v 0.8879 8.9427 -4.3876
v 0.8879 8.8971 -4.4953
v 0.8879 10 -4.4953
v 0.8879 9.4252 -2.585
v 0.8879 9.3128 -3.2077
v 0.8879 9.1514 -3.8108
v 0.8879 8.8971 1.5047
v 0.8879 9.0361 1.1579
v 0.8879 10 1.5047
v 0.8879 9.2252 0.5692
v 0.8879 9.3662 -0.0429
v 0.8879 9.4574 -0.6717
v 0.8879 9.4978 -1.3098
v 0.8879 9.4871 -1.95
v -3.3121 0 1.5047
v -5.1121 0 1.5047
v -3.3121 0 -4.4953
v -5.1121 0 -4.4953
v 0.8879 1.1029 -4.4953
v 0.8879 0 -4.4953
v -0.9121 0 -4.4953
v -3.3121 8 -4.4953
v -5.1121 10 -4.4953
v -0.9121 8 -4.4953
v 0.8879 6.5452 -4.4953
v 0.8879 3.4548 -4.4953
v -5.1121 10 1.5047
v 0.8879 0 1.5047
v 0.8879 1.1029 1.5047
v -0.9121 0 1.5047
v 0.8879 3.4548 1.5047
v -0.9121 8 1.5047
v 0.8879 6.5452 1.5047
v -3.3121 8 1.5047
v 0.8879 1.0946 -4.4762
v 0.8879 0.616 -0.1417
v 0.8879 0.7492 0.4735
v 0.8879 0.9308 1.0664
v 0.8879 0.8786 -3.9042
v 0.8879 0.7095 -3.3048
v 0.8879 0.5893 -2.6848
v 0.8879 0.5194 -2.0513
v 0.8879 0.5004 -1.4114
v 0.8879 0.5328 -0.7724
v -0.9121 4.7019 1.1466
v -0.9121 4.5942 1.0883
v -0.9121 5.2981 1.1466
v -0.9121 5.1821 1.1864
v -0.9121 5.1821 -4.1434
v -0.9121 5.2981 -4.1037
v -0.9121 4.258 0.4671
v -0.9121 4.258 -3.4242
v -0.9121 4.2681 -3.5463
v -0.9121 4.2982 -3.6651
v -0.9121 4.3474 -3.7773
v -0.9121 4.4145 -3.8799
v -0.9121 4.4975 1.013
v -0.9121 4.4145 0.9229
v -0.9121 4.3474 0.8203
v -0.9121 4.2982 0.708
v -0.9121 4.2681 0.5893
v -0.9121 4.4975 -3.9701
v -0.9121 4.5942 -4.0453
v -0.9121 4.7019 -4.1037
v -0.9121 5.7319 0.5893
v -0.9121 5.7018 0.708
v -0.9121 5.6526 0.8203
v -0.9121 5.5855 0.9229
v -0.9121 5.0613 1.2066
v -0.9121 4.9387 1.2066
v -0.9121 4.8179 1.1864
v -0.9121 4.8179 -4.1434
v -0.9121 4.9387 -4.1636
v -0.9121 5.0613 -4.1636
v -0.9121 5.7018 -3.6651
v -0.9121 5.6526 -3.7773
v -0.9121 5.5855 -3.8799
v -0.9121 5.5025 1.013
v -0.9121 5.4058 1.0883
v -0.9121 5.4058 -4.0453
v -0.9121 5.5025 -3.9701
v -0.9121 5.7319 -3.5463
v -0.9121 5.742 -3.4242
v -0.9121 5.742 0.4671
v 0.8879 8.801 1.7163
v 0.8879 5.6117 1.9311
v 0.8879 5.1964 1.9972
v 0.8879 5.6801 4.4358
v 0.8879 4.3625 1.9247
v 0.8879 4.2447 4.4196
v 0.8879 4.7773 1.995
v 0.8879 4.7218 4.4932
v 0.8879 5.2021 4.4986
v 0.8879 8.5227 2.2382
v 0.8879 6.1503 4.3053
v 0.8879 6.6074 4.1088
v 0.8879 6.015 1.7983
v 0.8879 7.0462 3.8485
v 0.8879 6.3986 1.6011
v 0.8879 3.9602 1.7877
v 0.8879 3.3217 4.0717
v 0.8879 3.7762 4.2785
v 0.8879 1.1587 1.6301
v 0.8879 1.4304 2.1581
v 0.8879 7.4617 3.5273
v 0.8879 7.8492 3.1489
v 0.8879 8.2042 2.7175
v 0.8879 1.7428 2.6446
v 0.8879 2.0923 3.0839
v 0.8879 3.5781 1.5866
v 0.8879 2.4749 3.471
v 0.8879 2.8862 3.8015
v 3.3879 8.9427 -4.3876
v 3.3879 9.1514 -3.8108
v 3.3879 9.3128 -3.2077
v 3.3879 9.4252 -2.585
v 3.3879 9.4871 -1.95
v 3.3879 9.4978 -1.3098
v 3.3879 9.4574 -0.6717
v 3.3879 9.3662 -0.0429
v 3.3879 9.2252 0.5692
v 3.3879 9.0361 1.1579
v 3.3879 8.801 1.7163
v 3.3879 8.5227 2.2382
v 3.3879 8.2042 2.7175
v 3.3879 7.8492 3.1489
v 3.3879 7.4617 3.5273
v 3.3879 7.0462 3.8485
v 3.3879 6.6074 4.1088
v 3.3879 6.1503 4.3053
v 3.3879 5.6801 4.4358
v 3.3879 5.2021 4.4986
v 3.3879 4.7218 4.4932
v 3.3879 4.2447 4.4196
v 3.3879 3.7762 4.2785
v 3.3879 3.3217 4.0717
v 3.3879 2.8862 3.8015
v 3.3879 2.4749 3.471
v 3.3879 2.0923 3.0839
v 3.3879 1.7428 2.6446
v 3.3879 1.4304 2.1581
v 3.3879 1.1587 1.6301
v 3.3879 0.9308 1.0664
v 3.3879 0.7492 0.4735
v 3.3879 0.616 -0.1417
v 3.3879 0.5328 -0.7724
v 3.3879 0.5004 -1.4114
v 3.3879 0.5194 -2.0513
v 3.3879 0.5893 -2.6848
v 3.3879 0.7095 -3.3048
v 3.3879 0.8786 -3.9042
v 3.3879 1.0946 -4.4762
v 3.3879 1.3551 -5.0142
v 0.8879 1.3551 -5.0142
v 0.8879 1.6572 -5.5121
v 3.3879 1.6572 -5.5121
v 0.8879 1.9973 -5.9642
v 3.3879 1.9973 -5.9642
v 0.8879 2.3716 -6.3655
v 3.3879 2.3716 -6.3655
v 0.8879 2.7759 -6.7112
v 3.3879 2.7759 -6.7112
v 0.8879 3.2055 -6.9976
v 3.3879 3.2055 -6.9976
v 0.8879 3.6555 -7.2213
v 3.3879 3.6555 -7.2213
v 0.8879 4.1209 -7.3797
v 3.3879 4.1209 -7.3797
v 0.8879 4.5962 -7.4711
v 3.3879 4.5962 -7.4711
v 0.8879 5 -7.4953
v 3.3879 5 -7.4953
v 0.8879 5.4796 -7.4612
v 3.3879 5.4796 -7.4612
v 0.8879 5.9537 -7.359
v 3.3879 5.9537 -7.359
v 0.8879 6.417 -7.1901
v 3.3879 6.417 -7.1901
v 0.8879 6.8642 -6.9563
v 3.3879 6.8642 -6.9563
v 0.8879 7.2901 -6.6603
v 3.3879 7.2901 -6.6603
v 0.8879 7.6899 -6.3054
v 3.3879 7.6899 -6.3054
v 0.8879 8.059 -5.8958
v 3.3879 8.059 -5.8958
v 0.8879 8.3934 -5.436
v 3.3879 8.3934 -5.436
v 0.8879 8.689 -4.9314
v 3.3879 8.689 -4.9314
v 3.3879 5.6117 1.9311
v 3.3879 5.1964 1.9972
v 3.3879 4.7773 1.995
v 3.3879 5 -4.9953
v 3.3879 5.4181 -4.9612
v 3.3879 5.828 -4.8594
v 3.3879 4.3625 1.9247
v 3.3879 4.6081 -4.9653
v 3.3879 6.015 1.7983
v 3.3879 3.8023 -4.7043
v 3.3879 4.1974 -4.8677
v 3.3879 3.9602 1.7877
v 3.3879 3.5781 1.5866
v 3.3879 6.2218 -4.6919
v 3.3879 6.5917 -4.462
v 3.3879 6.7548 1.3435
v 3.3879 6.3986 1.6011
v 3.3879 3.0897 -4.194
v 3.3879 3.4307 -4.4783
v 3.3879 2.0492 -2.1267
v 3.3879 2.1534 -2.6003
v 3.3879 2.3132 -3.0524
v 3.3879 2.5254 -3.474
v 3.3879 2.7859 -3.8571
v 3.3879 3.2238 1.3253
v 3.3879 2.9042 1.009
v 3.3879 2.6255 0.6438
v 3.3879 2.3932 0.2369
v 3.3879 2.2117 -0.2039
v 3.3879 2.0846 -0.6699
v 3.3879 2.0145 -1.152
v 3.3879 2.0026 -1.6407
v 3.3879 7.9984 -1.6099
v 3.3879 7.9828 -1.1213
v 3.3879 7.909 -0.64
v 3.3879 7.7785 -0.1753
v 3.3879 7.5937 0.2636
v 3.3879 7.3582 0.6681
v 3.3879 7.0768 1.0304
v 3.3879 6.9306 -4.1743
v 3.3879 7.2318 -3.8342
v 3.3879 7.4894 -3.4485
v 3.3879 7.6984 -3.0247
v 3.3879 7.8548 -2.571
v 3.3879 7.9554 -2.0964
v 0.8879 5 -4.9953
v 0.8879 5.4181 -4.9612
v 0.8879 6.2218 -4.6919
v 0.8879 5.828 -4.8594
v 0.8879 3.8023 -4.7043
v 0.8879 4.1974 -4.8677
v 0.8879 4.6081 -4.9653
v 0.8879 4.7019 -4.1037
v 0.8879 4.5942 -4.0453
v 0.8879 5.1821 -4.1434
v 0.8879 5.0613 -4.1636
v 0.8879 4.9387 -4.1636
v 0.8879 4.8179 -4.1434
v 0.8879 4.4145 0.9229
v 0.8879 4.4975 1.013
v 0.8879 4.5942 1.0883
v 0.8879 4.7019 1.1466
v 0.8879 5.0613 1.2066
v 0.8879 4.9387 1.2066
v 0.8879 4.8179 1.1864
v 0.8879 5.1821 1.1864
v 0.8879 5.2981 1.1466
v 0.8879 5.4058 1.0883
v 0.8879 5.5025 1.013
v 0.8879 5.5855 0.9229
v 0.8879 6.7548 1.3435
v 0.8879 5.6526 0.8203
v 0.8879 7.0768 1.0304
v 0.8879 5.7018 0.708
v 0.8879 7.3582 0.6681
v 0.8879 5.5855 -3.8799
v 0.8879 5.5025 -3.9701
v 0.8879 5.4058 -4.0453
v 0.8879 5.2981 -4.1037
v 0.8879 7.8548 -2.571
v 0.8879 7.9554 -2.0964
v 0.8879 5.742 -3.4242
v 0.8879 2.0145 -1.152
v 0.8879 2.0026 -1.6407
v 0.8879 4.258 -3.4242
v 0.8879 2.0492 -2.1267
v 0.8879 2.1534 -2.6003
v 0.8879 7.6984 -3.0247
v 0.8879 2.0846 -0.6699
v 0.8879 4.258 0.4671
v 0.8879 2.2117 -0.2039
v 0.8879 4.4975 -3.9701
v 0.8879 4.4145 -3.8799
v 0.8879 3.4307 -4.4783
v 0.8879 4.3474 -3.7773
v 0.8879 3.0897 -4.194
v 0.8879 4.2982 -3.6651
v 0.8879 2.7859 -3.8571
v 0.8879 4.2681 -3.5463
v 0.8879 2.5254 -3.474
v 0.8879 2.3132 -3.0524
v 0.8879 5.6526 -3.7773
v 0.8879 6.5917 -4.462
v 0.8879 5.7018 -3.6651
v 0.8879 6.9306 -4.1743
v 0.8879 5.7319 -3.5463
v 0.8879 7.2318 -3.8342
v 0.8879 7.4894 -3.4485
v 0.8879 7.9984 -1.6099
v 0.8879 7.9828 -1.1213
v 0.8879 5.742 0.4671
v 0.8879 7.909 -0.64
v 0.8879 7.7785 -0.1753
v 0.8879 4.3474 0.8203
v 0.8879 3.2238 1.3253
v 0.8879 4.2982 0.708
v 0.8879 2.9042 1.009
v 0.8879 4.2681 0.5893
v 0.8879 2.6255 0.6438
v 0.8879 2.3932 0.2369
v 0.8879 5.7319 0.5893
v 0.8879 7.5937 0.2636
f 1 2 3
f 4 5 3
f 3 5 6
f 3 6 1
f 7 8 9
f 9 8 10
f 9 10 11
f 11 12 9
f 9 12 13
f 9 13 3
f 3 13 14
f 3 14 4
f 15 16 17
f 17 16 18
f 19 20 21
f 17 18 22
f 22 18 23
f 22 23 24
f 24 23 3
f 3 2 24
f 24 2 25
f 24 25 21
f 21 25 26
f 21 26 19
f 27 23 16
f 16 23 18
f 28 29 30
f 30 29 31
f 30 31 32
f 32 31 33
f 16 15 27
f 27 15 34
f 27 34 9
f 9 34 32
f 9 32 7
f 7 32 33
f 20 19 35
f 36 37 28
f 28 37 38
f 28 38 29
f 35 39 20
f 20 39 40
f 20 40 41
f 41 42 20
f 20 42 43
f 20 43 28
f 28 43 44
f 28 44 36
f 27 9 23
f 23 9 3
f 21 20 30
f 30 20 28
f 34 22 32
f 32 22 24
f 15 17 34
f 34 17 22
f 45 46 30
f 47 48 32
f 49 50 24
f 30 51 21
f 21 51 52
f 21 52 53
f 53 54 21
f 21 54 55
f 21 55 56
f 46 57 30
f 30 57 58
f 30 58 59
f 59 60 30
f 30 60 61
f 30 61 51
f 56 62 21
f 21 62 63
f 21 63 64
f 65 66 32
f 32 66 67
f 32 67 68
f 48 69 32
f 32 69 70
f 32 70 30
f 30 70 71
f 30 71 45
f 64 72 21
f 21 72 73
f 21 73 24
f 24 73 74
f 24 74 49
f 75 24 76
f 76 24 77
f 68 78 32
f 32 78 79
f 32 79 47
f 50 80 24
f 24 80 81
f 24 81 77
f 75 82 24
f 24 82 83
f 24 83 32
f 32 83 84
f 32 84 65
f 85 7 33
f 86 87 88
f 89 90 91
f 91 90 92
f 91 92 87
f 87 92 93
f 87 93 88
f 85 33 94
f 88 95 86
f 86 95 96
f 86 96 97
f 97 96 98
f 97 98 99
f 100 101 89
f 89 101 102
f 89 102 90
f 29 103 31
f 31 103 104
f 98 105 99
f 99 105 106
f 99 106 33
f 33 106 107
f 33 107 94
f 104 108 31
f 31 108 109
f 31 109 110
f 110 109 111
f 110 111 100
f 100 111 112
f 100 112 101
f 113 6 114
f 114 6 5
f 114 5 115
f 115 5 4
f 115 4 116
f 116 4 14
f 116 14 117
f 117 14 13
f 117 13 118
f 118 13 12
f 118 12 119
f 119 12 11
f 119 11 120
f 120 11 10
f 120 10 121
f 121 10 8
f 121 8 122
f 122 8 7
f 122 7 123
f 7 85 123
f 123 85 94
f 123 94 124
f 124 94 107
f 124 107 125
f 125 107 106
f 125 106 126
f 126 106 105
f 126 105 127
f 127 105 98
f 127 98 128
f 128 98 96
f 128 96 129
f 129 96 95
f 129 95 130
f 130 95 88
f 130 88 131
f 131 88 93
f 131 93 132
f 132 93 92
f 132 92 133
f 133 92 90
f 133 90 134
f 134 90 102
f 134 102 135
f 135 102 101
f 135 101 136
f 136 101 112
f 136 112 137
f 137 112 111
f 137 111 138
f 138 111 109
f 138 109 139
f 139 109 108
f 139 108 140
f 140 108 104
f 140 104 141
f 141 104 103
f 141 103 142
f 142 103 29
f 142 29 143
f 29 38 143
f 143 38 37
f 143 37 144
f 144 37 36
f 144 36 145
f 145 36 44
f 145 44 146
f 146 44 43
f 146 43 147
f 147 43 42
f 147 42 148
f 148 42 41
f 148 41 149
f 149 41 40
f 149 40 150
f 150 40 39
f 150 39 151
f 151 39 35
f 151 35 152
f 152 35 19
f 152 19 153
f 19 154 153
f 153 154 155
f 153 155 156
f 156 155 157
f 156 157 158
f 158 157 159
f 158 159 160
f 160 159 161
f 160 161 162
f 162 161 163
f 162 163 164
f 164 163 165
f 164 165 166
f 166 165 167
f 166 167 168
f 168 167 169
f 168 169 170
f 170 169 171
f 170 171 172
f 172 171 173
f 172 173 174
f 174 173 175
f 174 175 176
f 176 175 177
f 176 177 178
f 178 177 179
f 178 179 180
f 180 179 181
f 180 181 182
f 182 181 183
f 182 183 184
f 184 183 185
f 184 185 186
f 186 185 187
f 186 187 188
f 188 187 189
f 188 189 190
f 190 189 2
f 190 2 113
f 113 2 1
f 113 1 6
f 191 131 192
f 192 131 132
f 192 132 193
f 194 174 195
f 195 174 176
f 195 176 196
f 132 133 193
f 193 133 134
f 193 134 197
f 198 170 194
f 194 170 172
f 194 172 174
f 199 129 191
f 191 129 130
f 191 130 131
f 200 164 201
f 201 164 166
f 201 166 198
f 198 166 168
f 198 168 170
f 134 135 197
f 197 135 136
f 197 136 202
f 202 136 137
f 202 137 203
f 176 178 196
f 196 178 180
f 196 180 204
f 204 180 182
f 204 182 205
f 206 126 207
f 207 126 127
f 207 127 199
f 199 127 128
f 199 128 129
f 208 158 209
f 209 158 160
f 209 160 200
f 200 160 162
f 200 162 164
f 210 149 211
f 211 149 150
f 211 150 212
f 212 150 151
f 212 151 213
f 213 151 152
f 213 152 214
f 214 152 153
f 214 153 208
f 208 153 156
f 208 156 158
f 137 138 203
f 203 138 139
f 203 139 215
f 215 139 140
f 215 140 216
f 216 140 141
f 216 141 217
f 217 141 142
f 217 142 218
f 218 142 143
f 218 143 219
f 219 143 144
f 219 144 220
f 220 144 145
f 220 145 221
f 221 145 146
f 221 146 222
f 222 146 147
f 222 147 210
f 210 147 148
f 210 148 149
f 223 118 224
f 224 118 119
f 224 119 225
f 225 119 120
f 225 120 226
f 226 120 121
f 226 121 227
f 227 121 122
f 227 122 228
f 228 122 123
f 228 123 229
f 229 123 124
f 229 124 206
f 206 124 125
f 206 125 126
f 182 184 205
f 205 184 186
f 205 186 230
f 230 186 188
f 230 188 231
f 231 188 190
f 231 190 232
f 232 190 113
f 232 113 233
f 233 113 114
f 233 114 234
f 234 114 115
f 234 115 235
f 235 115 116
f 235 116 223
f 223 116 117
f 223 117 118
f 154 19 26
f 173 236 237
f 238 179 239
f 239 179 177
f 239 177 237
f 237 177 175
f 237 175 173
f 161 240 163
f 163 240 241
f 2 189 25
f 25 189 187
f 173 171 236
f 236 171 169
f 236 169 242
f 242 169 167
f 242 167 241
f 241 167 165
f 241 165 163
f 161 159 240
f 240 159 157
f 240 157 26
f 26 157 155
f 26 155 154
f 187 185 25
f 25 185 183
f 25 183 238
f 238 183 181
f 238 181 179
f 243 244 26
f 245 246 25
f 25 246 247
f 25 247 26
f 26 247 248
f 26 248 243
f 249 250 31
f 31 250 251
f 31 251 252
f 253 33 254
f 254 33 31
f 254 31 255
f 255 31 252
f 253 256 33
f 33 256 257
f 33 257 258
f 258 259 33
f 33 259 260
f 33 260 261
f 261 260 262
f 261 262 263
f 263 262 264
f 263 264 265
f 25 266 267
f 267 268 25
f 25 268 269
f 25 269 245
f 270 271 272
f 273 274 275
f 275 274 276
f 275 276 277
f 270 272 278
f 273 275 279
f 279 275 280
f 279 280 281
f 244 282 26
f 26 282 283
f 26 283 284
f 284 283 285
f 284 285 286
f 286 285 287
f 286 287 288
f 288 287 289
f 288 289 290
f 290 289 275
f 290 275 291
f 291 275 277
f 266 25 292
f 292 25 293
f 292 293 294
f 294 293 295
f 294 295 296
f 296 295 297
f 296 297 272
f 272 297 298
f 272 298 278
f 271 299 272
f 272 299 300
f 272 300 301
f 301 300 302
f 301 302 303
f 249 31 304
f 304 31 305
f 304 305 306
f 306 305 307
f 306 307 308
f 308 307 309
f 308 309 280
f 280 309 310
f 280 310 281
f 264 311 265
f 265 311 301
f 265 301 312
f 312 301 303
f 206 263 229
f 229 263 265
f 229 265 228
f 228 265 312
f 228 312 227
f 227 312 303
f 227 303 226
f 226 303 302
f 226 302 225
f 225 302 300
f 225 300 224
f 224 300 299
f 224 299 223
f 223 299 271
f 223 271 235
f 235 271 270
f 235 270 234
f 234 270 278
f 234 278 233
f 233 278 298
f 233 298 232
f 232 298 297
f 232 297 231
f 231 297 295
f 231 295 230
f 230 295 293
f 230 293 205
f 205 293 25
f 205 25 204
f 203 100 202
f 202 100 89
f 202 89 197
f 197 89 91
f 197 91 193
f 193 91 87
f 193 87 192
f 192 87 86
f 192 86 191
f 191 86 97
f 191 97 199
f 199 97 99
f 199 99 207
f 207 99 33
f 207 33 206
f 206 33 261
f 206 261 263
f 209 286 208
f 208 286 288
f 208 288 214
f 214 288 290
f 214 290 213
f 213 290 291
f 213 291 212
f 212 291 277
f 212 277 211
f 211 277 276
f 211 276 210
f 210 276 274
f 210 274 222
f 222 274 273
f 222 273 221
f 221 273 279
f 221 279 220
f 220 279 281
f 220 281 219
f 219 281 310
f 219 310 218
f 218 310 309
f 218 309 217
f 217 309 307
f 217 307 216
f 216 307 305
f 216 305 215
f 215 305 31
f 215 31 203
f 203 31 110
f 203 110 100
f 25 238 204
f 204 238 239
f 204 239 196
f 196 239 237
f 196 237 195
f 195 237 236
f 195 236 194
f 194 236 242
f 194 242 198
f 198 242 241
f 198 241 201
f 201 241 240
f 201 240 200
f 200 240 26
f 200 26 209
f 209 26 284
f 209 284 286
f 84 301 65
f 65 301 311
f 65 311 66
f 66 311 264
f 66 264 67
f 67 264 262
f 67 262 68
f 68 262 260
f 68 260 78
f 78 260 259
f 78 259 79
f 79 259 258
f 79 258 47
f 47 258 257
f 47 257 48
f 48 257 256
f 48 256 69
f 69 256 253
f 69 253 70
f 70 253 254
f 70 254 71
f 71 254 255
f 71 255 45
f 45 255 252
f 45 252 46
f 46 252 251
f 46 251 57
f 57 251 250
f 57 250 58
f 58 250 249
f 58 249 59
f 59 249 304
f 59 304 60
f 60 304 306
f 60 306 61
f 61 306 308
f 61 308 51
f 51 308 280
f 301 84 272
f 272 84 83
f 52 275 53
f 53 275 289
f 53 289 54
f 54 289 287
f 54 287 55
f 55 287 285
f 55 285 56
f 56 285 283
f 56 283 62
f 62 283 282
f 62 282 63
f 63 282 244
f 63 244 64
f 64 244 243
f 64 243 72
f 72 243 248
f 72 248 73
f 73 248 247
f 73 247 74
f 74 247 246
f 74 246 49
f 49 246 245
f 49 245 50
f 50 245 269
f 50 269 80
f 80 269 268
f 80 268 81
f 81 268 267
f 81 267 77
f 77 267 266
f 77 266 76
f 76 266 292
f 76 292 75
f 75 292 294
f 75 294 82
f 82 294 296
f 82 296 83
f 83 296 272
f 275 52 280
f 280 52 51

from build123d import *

# Parameters (mm, degrees)
SKETCH_1_W          = 6
SKETCH_1_H          = 6
EXTRUDE_1_DEPTH     = 10
SKETCH_2_W          = 2.4
SKETCH_2_H          = 8
CUT_EXTRUDE_1_DEPTH = 10
SKETCH_3_RX         = 6
SKETCH_3_RY         = 4.5
EXTRUDE_2_DEPTH     = 2.5
SKETCH_4_RX         = 3.5
SKETCH_4_RY         = 3
CUT_EXTRUDE_3_DEPTH = 2.5
CUT_EXTRUDE_4_DEPTH = 2


with BuildPart() as part:
    # 草图1 → 凸台-拉伸1 (new body)
    with BuildSketch(Plane(origin=(0, 0, 0), x_dir=(1, 0, 0), z_dir=(0, 1, 0))):
        with Locations((-2.112149533, 1.495327103)):
            Rectangle(SKETCH_1_W, SKETCH_1_H)
    extrude(amount=EXTRUDE_1_DEPTH)

    # 草图2 → 切除-拉伸1 (cut)
    with BuildSketch(Plane.XY.offset(1.504672897)):
        with Locations((-2.112149533, 4)):
            Rectangle(SKETCH_2_W, SKETCH_2_H)
    extrude(amount=-CUT_EXTRUDE_1_DEPTH, mode=Mode.SUBTRACT)

    # 草图3 → 凸台-拉伸2 (add)
    with BuildSketch(Plane(origin=(0.887850467, 0, 0), x_dir=(0, 0, -1), z_dir=(1, 0, 0))):
        with Locations(Location((1.495327103, 5), (0, 0, 0))):
            Ellipse(SKETCH_3_RX, SKETCH_3_RY)
    extrude(amount=EXTRUDE_2_DEPTH)

    # 草图4 → 切除-拉伸3 (cut)
    with BuildSketch(Plane(origin=(3.387850467, 0, 0), x_dir=(0, 0, -1), z_dir=(1, 0, 0))):
        with Locations(Location((1.495327103, 5), (0, 0, 180))):
            Ellipse(SKETCH_4_RX, SKETCH_4_RY)
    extrude(amount=-CUT_EXTRUDE_3_DEPTH, mode=Mode.SUBTRACT)

    # 草图5 → 切除-拉伸4 (cut)
    with BuildSketch(Plane(origin=(0.887850467, 0, 0), x_dir=(0, 0, -1), z_dir=(1, 0, 0))):
        with BuildLine():
            Line((-0.467124992, 5.741987188), (3.424164273, 5.741987188))
            ThreePointArc((3.424164273, 5.741987188), (4.166151461, 5), (3.424164273, 4.258012812))
            Line((3.424164273, 4.258012812), (-0.467124992, 4.258012812))
            ThreePointArc((-0.467124992, 4.258012812), (-1.20911218, 5), (-0.467124992, 5.741987188))
        make_face()
    extrude(amount=-CUT_EXTRUDE_4_DEPTH, mode=Mode.SUBTRACT)


solid = part.part
